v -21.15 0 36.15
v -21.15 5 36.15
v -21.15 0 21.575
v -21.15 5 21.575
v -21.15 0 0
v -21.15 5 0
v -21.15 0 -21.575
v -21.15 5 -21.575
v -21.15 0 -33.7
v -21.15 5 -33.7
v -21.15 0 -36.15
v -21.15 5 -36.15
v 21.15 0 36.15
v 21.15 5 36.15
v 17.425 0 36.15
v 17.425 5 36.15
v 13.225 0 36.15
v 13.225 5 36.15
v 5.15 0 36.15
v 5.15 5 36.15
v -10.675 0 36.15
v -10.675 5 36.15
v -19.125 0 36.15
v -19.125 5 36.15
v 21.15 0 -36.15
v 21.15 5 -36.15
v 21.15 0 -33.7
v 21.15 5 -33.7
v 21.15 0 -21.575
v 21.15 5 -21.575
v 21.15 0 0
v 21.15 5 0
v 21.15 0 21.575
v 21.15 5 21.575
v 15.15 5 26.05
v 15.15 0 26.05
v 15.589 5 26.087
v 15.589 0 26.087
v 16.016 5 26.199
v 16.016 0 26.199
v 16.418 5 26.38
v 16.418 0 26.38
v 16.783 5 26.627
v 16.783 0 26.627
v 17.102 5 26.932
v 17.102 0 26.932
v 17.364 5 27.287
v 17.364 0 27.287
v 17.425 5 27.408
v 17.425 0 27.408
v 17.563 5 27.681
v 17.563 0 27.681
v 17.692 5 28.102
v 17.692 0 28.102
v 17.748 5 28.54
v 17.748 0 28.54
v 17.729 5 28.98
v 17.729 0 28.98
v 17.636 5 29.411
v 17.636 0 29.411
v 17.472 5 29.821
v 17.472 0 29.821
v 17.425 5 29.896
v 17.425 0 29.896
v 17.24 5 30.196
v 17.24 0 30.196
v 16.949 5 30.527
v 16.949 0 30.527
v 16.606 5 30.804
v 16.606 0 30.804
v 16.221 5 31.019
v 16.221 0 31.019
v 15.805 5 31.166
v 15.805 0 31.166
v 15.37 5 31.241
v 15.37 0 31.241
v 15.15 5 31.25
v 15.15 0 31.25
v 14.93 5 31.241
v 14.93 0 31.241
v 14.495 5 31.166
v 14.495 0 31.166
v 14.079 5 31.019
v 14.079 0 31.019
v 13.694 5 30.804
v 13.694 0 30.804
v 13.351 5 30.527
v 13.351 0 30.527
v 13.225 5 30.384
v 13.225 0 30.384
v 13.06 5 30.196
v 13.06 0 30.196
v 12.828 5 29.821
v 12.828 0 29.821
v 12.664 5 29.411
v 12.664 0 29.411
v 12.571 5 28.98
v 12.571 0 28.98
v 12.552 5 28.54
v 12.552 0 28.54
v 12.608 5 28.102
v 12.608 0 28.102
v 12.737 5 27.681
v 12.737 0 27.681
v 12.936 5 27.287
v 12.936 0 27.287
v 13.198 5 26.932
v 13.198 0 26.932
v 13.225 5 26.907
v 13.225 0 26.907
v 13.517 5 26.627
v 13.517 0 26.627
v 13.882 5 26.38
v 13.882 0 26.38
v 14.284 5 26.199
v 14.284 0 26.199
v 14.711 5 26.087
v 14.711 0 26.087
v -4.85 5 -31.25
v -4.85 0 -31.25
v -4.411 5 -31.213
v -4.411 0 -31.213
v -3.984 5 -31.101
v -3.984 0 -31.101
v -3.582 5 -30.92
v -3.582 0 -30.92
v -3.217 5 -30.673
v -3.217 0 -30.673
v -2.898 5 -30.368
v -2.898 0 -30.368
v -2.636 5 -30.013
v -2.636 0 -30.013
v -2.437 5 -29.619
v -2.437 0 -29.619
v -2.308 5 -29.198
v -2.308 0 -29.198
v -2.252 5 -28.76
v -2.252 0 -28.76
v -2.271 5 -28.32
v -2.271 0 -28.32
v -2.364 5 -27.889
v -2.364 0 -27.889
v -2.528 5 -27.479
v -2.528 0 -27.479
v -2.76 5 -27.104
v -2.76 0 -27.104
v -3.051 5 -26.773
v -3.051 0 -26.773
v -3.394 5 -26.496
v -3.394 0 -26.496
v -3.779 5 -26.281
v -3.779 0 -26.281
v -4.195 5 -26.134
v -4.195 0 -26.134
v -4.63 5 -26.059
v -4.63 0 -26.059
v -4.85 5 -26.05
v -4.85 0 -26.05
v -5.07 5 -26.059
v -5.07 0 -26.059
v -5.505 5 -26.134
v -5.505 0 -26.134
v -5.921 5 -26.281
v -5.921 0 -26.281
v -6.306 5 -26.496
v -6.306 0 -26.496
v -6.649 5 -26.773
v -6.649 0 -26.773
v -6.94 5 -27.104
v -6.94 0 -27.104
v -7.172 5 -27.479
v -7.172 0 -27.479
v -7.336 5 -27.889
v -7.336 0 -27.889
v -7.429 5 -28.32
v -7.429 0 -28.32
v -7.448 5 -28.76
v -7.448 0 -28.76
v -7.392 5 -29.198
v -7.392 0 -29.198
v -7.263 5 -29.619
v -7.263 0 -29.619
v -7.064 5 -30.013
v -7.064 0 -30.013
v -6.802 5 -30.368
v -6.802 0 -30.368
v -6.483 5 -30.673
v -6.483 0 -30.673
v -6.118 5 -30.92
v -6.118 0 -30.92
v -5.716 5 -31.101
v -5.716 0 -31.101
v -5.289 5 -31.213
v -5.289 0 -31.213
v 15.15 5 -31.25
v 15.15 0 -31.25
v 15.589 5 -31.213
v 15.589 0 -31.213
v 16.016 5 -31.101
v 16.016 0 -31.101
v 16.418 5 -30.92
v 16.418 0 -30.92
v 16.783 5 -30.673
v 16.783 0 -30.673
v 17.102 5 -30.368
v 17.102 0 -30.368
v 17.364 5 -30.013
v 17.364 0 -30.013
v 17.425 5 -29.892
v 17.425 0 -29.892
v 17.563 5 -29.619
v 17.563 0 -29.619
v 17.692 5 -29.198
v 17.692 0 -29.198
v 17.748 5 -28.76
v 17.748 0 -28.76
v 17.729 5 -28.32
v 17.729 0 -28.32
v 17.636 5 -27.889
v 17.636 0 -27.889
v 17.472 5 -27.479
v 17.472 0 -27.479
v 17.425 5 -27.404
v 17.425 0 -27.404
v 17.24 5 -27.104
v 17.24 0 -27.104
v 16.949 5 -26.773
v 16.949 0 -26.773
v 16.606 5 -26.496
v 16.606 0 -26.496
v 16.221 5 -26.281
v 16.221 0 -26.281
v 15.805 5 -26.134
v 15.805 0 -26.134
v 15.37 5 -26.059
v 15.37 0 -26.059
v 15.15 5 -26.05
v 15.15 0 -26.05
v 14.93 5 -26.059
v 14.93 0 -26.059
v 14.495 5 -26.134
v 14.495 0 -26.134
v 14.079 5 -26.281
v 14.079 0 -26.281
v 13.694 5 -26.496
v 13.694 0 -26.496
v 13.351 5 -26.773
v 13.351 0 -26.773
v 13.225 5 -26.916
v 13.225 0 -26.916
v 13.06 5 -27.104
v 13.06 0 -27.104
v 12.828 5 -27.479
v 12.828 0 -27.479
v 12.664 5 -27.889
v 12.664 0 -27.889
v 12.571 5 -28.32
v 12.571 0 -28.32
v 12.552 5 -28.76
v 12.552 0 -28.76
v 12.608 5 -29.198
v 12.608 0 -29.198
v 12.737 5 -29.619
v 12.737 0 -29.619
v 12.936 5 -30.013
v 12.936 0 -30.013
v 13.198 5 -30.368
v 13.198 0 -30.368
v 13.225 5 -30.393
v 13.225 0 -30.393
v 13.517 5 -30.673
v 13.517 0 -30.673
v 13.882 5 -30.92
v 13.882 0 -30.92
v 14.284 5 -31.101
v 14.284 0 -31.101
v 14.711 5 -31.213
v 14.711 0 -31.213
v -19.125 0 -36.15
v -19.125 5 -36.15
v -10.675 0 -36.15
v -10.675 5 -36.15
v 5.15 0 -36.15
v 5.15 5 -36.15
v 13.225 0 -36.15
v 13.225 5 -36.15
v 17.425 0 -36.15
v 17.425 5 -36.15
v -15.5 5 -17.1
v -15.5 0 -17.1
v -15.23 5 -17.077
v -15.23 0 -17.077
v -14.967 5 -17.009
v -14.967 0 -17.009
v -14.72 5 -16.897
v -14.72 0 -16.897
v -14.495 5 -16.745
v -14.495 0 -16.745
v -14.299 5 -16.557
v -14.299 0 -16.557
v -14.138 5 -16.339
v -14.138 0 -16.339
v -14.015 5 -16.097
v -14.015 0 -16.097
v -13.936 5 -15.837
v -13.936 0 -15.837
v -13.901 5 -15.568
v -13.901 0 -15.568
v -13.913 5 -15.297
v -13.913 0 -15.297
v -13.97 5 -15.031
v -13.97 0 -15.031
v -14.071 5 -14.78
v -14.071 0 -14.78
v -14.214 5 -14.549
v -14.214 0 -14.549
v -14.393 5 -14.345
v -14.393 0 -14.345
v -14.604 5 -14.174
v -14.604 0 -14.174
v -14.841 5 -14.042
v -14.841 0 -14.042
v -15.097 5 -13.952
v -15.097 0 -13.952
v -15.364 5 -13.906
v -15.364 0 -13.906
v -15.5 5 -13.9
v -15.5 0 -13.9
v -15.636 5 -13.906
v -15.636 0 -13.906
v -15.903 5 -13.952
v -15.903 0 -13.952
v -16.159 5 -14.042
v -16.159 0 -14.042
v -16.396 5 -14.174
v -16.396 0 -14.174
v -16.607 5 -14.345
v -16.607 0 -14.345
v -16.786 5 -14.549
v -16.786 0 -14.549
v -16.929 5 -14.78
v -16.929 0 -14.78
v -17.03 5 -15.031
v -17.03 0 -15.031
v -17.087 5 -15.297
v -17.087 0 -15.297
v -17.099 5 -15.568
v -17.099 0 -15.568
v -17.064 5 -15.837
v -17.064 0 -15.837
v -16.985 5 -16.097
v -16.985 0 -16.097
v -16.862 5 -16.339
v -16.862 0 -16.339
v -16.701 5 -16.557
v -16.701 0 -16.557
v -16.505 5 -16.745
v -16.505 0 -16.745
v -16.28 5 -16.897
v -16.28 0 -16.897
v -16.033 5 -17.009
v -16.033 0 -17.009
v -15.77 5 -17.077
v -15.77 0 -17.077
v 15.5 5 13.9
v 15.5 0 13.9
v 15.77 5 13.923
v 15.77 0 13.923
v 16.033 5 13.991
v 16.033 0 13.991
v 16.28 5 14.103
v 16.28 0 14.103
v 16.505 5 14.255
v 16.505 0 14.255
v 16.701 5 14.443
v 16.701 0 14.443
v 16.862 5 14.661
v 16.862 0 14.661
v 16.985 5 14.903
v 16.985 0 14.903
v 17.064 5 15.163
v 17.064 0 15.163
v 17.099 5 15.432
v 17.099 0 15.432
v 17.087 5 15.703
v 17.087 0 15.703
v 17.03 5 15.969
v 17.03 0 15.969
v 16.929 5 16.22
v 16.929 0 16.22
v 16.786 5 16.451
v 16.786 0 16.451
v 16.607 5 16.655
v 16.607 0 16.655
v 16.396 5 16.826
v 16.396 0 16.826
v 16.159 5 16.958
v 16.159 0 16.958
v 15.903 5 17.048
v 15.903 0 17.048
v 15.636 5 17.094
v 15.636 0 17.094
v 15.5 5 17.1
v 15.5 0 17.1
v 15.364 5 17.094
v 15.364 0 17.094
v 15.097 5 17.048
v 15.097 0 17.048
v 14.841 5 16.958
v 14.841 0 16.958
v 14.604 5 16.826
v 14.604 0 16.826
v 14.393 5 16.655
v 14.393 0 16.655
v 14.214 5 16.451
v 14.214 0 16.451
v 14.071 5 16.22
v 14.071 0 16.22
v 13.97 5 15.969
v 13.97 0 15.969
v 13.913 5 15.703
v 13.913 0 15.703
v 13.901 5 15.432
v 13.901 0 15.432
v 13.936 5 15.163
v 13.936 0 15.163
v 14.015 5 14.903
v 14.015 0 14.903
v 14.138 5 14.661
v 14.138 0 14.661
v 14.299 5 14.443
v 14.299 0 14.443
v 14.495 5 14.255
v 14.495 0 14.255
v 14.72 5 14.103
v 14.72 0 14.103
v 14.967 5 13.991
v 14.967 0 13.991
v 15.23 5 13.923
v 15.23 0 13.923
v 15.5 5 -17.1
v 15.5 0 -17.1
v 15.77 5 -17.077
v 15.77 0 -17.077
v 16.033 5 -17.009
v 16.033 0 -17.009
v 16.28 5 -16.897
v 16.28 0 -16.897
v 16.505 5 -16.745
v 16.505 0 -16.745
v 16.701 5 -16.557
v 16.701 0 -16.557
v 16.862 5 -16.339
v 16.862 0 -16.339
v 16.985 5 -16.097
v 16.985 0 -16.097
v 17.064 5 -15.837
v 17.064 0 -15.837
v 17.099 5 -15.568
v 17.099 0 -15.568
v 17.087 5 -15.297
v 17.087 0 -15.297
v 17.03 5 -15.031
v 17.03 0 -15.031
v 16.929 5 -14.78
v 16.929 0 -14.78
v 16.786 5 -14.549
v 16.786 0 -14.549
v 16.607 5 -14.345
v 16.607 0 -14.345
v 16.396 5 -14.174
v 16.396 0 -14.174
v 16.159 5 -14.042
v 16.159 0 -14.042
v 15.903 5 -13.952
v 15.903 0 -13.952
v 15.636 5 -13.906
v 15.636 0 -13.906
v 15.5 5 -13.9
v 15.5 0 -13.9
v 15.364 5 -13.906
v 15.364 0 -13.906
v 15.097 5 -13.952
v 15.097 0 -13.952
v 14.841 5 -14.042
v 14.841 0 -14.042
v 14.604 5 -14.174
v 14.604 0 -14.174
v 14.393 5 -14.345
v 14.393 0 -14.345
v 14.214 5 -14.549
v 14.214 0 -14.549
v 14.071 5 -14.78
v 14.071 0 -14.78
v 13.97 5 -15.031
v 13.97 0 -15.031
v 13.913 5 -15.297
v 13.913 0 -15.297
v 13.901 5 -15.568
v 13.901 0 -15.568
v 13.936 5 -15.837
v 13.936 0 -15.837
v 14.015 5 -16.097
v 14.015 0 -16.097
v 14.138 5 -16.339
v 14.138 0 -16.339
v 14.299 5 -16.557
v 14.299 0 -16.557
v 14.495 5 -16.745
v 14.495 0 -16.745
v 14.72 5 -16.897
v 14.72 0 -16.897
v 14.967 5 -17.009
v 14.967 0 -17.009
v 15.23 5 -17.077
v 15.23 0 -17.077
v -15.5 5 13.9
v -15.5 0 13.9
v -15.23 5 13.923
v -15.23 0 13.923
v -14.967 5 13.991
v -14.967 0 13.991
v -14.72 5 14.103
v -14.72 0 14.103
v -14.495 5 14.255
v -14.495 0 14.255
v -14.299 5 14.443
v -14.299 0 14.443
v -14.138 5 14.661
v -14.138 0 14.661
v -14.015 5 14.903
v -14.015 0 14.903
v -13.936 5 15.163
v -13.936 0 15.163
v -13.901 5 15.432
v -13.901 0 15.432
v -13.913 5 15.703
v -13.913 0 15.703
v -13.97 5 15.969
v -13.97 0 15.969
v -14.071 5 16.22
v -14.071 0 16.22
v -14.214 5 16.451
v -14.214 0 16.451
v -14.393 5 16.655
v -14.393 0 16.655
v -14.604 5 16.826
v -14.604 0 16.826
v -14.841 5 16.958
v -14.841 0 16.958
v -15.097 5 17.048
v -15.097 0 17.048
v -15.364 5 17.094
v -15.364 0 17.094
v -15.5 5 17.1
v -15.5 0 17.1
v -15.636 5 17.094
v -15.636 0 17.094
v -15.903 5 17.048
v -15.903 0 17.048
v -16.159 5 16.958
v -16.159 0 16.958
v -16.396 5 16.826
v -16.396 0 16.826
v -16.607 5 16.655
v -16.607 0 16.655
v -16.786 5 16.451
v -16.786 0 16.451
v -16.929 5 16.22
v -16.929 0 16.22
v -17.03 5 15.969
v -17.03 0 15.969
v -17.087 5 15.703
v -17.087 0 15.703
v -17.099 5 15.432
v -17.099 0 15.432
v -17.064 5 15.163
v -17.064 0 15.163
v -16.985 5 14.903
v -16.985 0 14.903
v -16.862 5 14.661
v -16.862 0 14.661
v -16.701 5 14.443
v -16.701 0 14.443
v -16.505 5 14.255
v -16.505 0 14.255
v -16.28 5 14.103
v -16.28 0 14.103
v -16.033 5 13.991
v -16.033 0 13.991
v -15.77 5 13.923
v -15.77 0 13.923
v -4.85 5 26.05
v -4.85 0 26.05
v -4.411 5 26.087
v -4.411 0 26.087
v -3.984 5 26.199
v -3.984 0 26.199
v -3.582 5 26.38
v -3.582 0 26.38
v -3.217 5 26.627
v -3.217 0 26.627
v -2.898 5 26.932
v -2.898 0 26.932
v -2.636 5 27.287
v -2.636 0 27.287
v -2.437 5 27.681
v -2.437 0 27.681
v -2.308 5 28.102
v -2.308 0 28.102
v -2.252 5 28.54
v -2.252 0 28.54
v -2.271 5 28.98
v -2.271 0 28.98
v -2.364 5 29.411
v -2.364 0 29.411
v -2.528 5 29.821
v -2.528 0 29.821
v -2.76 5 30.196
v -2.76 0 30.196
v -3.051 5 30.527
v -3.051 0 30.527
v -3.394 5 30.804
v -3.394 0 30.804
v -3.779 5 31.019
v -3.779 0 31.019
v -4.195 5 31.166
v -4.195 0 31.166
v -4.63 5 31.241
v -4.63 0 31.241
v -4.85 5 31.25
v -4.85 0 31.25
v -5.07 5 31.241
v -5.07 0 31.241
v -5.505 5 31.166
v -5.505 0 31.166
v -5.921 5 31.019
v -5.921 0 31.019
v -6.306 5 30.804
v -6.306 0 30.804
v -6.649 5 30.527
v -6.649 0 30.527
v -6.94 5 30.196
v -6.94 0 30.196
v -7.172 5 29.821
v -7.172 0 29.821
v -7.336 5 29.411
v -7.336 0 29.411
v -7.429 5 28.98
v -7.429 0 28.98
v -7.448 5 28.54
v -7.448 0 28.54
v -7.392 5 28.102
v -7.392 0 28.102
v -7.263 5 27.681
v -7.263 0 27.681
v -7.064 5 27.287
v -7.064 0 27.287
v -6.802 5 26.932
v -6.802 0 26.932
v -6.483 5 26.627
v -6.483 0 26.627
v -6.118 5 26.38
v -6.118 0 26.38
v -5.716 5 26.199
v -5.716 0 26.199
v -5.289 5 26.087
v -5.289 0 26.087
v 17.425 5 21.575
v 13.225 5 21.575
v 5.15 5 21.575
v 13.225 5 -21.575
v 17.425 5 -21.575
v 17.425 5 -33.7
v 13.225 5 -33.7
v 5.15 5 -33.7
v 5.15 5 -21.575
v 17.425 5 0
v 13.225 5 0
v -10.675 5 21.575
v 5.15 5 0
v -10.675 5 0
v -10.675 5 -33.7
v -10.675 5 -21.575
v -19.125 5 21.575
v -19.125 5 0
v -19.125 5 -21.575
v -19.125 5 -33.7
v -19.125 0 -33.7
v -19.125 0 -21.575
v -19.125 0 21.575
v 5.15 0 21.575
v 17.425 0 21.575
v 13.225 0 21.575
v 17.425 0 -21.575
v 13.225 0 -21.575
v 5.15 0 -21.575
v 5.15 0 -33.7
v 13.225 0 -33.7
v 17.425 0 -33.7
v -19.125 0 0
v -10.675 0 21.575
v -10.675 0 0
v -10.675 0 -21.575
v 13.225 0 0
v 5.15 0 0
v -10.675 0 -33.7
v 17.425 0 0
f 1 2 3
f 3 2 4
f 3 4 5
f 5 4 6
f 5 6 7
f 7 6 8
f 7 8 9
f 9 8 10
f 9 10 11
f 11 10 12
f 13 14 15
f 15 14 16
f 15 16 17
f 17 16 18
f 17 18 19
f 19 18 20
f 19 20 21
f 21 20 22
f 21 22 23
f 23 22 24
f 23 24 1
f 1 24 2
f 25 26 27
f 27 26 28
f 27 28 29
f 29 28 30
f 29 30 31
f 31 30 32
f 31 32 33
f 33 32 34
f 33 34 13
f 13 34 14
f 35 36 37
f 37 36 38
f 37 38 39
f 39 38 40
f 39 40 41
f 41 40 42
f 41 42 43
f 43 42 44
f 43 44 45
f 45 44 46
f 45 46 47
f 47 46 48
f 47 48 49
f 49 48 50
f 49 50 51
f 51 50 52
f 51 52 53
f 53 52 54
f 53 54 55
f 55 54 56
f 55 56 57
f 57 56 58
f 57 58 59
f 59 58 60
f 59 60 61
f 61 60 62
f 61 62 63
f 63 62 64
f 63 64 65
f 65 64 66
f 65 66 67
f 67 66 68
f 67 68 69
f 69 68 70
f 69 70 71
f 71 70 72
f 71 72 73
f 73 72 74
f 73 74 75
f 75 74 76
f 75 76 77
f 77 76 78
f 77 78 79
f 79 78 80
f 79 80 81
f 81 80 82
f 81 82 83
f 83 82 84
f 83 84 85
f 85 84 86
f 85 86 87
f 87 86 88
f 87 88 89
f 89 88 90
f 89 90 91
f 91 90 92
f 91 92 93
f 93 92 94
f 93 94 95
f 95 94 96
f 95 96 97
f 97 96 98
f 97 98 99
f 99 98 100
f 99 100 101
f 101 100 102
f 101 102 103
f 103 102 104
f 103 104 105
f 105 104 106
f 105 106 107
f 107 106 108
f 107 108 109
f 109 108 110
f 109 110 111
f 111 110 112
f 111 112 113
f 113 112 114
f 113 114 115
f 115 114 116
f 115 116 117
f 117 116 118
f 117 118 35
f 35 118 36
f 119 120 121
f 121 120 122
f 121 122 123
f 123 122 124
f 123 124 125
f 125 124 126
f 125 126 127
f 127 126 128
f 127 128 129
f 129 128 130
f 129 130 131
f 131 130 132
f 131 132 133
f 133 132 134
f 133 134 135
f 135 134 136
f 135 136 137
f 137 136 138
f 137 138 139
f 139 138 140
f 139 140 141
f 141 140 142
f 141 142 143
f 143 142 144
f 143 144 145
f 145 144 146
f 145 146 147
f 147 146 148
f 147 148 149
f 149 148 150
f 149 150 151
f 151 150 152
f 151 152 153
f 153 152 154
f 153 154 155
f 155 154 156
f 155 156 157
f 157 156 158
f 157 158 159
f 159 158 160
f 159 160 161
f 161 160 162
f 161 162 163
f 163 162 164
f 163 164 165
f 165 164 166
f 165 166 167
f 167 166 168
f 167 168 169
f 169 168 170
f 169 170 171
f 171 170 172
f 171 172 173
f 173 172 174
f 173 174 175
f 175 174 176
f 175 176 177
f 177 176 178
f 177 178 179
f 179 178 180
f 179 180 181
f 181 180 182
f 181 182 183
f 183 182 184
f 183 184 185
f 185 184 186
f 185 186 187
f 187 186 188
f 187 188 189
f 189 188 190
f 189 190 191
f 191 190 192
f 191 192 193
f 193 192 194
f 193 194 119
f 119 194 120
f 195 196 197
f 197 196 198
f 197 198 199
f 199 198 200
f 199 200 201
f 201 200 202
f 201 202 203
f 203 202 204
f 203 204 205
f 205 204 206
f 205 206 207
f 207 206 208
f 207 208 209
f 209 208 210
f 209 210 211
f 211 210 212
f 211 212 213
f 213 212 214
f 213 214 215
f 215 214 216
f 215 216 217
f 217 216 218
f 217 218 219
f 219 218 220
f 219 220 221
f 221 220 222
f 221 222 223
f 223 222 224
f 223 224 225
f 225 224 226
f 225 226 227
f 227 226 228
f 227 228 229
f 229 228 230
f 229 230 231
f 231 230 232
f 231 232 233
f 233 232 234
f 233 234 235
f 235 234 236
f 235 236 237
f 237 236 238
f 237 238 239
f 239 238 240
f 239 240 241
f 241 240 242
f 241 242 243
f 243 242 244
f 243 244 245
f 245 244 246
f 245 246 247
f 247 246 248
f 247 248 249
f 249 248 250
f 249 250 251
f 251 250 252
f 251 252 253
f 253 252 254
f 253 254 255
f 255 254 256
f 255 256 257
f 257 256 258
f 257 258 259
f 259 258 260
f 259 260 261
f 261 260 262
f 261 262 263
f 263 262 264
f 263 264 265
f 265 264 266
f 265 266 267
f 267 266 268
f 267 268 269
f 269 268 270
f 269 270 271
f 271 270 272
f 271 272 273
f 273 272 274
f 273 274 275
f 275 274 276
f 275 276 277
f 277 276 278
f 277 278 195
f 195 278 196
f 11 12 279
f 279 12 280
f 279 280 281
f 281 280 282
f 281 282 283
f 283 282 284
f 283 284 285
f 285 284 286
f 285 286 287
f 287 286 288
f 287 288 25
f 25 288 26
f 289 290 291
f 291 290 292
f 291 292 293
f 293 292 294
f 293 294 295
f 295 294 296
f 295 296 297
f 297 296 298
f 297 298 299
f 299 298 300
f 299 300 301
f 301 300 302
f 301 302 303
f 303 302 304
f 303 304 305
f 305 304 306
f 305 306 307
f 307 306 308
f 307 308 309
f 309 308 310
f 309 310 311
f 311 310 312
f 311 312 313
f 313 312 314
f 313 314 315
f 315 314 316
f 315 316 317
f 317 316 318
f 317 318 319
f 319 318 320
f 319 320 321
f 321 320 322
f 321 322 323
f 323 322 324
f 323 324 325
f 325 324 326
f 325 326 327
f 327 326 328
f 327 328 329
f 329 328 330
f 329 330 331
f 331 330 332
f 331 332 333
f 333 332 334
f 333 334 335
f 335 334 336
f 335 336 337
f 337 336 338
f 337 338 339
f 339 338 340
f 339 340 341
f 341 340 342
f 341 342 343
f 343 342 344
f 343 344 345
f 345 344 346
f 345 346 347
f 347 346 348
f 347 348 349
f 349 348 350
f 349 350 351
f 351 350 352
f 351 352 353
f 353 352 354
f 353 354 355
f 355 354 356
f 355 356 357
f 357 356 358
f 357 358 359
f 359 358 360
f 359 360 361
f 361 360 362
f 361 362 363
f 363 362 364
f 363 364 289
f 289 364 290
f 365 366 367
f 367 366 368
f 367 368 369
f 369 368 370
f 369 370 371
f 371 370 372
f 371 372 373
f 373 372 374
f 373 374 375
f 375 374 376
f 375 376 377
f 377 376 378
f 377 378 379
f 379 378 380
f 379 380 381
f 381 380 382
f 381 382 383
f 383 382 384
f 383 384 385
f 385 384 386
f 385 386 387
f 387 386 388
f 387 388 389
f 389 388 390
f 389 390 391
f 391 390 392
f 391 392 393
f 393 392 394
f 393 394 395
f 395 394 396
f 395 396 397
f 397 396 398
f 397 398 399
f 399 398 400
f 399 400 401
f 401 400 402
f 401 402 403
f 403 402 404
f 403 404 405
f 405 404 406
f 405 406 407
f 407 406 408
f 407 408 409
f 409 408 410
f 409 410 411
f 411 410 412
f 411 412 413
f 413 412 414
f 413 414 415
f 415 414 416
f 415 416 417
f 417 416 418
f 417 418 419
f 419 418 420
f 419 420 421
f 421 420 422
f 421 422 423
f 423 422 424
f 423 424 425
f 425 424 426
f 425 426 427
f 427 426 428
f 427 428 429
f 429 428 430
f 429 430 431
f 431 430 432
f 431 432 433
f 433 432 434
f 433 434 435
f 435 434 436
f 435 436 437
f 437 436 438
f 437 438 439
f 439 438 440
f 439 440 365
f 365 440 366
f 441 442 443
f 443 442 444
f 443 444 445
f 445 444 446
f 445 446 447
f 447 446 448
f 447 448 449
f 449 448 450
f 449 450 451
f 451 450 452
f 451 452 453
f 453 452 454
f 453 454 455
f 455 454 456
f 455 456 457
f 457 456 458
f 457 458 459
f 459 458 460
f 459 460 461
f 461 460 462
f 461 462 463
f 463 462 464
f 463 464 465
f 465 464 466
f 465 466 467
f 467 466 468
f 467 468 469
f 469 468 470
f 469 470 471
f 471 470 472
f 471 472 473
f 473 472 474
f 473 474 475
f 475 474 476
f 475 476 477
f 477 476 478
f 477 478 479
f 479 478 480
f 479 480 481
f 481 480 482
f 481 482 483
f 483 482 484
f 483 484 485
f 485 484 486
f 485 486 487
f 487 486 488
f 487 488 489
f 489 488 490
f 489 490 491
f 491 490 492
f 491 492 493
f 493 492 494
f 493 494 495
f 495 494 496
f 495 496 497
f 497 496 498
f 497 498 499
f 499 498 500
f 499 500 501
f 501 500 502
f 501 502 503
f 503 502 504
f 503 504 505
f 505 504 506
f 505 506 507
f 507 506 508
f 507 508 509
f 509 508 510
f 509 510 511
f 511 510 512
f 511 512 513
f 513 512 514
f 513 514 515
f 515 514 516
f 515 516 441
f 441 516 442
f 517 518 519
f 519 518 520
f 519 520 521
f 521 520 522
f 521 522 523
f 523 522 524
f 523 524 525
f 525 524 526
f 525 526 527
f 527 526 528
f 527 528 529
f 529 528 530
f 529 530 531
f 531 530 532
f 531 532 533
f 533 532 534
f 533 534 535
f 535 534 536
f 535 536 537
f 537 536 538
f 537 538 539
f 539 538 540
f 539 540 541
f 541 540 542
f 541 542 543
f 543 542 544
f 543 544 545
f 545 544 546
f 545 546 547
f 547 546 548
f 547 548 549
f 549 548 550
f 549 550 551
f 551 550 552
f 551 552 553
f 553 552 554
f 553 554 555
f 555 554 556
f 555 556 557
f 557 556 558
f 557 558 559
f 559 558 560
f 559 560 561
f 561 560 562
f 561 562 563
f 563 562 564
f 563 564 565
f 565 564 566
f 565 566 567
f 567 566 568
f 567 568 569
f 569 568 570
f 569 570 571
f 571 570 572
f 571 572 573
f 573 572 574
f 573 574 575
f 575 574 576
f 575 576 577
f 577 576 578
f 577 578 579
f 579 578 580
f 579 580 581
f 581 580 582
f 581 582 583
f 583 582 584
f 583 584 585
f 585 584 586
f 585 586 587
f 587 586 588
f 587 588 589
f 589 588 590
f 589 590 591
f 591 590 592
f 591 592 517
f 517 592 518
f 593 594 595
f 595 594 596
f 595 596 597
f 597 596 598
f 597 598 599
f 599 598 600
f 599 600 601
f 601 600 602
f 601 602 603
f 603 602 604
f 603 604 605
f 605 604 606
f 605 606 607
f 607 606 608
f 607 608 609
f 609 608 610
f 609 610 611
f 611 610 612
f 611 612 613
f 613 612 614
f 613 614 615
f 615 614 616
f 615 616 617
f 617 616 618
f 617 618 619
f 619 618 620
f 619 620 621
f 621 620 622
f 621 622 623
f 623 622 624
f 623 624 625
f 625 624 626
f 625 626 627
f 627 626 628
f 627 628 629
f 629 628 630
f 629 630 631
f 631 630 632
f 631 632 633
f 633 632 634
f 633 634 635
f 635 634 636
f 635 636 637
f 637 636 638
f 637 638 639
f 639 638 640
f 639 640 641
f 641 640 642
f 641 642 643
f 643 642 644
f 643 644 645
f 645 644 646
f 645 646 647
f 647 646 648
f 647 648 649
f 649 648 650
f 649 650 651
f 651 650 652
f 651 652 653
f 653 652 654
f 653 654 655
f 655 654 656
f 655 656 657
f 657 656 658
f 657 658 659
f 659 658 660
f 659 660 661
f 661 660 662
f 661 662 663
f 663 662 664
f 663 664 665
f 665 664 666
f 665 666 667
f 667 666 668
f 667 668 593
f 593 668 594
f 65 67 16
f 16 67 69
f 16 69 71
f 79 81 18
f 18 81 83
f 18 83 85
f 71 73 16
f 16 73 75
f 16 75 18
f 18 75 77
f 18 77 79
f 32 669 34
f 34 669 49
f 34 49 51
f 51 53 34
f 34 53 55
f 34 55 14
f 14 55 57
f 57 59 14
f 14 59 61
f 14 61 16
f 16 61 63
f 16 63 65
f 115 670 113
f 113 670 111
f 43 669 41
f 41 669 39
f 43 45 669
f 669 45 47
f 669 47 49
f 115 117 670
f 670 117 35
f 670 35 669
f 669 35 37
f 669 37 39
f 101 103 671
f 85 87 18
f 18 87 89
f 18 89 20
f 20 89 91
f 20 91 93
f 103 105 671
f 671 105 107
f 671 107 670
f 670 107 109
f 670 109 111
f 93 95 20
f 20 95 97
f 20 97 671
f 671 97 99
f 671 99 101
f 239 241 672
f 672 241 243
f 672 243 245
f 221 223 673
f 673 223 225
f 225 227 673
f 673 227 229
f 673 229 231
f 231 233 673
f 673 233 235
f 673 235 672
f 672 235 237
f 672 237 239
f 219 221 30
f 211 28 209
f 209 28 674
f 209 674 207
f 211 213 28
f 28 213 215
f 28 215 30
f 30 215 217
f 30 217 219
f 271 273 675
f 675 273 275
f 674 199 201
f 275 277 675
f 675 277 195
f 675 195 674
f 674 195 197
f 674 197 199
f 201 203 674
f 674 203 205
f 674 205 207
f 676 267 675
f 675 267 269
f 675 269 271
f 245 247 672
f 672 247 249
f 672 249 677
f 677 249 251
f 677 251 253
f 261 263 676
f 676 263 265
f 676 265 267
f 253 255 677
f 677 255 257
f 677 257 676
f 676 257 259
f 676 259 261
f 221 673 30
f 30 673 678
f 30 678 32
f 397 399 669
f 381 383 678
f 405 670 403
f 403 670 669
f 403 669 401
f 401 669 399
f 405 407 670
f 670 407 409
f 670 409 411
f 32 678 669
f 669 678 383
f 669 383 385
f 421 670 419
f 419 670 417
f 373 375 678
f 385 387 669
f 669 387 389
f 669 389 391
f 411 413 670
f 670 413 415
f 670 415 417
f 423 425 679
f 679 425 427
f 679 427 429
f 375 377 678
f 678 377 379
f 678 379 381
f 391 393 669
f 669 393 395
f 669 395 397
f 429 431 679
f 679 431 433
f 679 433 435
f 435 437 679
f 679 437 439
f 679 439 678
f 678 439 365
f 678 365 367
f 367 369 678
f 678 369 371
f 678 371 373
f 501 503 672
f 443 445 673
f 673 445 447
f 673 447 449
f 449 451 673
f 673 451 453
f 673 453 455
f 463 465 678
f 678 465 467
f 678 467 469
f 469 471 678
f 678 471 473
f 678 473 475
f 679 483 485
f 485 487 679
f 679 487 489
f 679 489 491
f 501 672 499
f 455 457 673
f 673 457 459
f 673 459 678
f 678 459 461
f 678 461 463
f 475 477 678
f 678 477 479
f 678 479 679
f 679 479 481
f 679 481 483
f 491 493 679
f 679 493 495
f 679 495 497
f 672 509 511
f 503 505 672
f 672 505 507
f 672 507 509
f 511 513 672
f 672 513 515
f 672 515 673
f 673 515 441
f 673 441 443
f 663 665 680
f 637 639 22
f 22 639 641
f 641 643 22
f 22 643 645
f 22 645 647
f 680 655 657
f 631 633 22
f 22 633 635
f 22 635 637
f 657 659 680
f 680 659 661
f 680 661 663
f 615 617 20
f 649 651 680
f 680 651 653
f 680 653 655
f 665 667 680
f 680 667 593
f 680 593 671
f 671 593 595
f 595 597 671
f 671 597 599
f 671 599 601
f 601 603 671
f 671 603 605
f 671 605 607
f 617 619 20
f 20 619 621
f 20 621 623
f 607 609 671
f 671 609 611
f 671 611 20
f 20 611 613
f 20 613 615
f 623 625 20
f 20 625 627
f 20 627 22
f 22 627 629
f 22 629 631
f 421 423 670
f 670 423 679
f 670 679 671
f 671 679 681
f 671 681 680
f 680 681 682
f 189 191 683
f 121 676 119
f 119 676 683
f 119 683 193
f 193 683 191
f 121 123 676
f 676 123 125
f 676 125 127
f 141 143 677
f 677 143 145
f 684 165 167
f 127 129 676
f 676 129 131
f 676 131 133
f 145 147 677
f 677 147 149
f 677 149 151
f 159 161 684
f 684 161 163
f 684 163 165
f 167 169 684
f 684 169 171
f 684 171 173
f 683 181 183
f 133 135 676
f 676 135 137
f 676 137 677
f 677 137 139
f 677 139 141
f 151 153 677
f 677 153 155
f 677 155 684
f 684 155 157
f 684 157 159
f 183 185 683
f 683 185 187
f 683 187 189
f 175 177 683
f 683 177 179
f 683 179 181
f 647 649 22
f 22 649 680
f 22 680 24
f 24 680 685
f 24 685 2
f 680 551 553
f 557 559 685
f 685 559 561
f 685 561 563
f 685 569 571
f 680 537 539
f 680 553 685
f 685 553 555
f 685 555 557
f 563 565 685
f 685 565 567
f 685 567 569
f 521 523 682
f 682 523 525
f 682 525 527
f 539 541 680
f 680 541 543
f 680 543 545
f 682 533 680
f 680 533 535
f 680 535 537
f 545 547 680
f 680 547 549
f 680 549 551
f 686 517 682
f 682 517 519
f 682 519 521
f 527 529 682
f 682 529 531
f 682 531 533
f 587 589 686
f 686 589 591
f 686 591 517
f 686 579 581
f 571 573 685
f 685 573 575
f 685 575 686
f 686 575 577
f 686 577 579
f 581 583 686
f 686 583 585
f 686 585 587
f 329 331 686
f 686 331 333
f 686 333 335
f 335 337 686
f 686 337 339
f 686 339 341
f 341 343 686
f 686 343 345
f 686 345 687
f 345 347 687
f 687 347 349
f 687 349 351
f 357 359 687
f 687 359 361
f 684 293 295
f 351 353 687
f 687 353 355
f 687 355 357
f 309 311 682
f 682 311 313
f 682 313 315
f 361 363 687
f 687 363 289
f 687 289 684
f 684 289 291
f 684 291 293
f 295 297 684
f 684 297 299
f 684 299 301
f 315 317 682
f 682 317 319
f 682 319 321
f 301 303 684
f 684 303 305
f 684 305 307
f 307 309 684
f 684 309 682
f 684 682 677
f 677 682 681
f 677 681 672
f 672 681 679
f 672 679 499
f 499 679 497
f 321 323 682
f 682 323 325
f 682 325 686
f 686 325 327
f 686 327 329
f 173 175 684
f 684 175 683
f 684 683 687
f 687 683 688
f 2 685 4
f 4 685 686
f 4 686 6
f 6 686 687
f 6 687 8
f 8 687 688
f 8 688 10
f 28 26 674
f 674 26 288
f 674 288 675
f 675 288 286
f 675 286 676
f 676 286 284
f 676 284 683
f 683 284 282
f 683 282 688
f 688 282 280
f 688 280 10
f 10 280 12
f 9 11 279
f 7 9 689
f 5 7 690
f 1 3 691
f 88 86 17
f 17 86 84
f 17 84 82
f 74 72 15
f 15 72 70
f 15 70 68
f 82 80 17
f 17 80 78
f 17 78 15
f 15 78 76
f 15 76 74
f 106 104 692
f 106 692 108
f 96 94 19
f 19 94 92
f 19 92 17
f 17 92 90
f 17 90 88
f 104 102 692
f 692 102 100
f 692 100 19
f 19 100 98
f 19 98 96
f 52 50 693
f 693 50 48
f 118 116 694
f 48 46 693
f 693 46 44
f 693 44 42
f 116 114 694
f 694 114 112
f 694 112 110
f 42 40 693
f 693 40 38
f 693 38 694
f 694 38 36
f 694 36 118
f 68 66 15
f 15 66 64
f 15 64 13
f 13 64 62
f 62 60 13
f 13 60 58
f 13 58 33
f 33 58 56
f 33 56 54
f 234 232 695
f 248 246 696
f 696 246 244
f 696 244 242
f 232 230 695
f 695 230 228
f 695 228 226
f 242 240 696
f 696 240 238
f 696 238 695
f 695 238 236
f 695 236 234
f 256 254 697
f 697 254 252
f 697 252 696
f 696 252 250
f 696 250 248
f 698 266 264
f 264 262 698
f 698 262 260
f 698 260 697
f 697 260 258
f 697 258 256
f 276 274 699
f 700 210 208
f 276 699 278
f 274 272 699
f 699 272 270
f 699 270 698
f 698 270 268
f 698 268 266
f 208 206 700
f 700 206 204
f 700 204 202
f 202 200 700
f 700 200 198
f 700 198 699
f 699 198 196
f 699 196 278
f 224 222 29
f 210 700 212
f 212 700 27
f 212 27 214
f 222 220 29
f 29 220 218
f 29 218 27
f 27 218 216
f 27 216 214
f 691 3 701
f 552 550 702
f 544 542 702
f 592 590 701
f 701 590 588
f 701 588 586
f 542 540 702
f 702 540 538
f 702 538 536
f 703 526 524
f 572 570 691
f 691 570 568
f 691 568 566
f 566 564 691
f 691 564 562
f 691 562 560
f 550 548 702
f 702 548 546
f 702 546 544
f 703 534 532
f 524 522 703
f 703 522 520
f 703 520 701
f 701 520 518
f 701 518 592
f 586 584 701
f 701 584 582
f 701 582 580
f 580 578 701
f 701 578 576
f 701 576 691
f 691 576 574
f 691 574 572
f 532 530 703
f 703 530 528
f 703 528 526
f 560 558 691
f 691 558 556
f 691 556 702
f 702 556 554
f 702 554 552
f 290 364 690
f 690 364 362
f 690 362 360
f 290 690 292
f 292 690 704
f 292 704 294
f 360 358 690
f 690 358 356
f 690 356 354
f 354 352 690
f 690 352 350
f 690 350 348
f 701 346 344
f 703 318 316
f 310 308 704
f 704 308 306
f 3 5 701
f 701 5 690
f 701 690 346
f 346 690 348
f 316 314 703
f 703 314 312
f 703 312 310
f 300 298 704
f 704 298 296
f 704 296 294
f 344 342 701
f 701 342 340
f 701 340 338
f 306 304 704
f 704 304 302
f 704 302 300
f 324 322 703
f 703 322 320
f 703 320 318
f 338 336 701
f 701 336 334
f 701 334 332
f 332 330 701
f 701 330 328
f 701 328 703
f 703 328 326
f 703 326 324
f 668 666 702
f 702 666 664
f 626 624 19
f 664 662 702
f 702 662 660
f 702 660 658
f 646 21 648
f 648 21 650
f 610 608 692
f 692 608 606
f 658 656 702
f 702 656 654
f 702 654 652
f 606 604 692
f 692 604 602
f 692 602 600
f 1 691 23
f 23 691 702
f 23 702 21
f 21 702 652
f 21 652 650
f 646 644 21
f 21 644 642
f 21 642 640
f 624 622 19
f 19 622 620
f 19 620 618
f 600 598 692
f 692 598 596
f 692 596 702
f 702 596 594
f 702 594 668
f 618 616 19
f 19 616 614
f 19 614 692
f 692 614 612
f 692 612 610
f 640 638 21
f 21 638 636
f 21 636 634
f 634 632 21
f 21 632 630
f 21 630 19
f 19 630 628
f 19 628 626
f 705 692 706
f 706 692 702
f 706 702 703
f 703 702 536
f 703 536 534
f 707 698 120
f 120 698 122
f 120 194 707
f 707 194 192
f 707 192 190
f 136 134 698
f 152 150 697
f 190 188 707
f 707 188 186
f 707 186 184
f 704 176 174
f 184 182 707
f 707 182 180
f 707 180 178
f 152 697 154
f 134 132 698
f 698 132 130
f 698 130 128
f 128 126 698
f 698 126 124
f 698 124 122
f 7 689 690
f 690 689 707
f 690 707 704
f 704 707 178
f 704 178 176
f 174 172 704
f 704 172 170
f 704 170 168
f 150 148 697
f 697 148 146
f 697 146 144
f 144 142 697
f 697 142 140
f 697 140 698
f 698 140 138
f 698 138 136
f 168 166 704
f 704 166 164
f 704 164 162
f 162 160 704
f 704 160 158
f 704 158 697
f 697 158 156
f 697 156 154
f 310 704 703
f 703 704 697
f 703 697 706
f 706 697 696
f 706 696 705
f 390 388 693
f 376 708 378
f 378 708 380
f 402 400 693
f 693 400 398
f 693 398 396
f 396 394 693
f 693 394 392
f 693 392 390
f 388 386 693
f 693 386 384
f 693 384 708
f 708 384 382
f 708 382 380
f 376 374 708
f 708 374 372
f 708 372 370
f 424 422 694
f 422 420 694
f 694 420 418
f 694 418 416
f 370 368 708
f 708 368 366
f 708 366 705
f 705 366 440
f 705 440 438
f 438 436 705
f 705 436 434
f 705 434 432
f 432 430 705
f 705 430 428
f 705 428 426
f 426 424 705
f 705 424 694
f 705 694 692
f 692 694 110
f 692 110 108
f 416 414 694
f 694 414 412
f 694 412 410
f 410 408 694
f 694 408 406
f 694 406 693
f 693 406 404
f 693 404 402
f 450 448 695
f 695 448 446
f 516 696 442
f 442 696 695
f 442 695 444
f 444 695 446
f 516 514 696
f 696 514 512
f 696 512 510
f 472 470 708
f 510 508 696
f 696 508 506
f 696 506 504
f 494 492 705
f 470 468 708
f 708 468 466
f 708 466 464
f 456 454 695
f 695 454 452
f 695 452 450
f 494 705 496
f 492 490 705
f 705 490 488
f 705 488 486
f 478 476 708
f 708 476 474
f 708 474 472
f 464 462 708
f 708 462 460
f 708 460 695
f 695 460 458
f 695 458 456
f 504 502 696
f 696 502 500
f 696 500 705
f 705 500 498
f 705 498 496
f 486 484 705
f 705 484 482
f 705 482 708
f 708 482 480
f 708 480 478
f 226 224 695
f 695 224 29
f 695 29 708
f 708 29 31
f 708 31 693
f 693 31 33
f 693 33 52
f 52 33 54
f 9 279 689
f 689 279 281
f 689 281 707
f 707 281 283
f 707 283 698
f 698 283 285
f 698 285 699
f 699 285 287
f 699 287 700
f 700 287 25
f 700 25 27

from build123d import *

# Parameters (mm, degrees)
SKETCH2_W           = 42.3
SKETCH2_H           = 42.3
SKETCH2_R           = 1.6
SKETCH2_H_2         = 15
SKETCH2_R_2         = 2.6
BOSS_EXTRUDE1_DEPTH = 5


with BuildPart() as part:
    # Sketch2 → Boss-Extrude1 (new body)
    with BuildSketch(Plane(origin=(0, 0, 0), x_dir=(1, 0, 0), z_dir=(0, 1, 0))):
        Rectangle(SKETCH2_W, SKETCH2_H)
        with Locations((-15.5, -15.5)):
            Circle(SKETCH2_R, mode=Mode.SUBTRACT)
        with Locations((15.5, 15.5)):
            Circle(SKETCH2_R, mode=Mode.SUBTRACT)
        with Locations((15.5, -15.5)):
            Circle(SKETCH2_R, mode=Mode.SUBTRACT)
        with Locations((-15.5, 15.5)):
            Circle(SKETCH2_R, mode=Mode.SUBTRACT)
        with Locations((0, -28.65)):
            Rectangle(SKETCH2_W, SKETCH2_H_2)
        with Locations((15.15, -28.65)):
            Circle(SKETCH2_R_2, mode=Mode.SUBTRACT)
        with Locations((-4.85, -28.65)):
            Circle(SKETCH2_R_2, mode=Mode.SUBTRACT)
        with Locations((0, 28.65)):
            Rectangle(SKETCH2_W, SKETCH2_H_2)
        with Locations((15.15, 28.65)):
            Circle(SKETCH2_R_2, mode=Mode.SUBTRACT)
        with Locations((-4.85, 28.65)):
            Circle(SKETCH2_R_2, mode=Mode.SUBTRACT)
    extrude(amount=BOSS_EXTRUDE1_DEPTH)


solid = part.part
